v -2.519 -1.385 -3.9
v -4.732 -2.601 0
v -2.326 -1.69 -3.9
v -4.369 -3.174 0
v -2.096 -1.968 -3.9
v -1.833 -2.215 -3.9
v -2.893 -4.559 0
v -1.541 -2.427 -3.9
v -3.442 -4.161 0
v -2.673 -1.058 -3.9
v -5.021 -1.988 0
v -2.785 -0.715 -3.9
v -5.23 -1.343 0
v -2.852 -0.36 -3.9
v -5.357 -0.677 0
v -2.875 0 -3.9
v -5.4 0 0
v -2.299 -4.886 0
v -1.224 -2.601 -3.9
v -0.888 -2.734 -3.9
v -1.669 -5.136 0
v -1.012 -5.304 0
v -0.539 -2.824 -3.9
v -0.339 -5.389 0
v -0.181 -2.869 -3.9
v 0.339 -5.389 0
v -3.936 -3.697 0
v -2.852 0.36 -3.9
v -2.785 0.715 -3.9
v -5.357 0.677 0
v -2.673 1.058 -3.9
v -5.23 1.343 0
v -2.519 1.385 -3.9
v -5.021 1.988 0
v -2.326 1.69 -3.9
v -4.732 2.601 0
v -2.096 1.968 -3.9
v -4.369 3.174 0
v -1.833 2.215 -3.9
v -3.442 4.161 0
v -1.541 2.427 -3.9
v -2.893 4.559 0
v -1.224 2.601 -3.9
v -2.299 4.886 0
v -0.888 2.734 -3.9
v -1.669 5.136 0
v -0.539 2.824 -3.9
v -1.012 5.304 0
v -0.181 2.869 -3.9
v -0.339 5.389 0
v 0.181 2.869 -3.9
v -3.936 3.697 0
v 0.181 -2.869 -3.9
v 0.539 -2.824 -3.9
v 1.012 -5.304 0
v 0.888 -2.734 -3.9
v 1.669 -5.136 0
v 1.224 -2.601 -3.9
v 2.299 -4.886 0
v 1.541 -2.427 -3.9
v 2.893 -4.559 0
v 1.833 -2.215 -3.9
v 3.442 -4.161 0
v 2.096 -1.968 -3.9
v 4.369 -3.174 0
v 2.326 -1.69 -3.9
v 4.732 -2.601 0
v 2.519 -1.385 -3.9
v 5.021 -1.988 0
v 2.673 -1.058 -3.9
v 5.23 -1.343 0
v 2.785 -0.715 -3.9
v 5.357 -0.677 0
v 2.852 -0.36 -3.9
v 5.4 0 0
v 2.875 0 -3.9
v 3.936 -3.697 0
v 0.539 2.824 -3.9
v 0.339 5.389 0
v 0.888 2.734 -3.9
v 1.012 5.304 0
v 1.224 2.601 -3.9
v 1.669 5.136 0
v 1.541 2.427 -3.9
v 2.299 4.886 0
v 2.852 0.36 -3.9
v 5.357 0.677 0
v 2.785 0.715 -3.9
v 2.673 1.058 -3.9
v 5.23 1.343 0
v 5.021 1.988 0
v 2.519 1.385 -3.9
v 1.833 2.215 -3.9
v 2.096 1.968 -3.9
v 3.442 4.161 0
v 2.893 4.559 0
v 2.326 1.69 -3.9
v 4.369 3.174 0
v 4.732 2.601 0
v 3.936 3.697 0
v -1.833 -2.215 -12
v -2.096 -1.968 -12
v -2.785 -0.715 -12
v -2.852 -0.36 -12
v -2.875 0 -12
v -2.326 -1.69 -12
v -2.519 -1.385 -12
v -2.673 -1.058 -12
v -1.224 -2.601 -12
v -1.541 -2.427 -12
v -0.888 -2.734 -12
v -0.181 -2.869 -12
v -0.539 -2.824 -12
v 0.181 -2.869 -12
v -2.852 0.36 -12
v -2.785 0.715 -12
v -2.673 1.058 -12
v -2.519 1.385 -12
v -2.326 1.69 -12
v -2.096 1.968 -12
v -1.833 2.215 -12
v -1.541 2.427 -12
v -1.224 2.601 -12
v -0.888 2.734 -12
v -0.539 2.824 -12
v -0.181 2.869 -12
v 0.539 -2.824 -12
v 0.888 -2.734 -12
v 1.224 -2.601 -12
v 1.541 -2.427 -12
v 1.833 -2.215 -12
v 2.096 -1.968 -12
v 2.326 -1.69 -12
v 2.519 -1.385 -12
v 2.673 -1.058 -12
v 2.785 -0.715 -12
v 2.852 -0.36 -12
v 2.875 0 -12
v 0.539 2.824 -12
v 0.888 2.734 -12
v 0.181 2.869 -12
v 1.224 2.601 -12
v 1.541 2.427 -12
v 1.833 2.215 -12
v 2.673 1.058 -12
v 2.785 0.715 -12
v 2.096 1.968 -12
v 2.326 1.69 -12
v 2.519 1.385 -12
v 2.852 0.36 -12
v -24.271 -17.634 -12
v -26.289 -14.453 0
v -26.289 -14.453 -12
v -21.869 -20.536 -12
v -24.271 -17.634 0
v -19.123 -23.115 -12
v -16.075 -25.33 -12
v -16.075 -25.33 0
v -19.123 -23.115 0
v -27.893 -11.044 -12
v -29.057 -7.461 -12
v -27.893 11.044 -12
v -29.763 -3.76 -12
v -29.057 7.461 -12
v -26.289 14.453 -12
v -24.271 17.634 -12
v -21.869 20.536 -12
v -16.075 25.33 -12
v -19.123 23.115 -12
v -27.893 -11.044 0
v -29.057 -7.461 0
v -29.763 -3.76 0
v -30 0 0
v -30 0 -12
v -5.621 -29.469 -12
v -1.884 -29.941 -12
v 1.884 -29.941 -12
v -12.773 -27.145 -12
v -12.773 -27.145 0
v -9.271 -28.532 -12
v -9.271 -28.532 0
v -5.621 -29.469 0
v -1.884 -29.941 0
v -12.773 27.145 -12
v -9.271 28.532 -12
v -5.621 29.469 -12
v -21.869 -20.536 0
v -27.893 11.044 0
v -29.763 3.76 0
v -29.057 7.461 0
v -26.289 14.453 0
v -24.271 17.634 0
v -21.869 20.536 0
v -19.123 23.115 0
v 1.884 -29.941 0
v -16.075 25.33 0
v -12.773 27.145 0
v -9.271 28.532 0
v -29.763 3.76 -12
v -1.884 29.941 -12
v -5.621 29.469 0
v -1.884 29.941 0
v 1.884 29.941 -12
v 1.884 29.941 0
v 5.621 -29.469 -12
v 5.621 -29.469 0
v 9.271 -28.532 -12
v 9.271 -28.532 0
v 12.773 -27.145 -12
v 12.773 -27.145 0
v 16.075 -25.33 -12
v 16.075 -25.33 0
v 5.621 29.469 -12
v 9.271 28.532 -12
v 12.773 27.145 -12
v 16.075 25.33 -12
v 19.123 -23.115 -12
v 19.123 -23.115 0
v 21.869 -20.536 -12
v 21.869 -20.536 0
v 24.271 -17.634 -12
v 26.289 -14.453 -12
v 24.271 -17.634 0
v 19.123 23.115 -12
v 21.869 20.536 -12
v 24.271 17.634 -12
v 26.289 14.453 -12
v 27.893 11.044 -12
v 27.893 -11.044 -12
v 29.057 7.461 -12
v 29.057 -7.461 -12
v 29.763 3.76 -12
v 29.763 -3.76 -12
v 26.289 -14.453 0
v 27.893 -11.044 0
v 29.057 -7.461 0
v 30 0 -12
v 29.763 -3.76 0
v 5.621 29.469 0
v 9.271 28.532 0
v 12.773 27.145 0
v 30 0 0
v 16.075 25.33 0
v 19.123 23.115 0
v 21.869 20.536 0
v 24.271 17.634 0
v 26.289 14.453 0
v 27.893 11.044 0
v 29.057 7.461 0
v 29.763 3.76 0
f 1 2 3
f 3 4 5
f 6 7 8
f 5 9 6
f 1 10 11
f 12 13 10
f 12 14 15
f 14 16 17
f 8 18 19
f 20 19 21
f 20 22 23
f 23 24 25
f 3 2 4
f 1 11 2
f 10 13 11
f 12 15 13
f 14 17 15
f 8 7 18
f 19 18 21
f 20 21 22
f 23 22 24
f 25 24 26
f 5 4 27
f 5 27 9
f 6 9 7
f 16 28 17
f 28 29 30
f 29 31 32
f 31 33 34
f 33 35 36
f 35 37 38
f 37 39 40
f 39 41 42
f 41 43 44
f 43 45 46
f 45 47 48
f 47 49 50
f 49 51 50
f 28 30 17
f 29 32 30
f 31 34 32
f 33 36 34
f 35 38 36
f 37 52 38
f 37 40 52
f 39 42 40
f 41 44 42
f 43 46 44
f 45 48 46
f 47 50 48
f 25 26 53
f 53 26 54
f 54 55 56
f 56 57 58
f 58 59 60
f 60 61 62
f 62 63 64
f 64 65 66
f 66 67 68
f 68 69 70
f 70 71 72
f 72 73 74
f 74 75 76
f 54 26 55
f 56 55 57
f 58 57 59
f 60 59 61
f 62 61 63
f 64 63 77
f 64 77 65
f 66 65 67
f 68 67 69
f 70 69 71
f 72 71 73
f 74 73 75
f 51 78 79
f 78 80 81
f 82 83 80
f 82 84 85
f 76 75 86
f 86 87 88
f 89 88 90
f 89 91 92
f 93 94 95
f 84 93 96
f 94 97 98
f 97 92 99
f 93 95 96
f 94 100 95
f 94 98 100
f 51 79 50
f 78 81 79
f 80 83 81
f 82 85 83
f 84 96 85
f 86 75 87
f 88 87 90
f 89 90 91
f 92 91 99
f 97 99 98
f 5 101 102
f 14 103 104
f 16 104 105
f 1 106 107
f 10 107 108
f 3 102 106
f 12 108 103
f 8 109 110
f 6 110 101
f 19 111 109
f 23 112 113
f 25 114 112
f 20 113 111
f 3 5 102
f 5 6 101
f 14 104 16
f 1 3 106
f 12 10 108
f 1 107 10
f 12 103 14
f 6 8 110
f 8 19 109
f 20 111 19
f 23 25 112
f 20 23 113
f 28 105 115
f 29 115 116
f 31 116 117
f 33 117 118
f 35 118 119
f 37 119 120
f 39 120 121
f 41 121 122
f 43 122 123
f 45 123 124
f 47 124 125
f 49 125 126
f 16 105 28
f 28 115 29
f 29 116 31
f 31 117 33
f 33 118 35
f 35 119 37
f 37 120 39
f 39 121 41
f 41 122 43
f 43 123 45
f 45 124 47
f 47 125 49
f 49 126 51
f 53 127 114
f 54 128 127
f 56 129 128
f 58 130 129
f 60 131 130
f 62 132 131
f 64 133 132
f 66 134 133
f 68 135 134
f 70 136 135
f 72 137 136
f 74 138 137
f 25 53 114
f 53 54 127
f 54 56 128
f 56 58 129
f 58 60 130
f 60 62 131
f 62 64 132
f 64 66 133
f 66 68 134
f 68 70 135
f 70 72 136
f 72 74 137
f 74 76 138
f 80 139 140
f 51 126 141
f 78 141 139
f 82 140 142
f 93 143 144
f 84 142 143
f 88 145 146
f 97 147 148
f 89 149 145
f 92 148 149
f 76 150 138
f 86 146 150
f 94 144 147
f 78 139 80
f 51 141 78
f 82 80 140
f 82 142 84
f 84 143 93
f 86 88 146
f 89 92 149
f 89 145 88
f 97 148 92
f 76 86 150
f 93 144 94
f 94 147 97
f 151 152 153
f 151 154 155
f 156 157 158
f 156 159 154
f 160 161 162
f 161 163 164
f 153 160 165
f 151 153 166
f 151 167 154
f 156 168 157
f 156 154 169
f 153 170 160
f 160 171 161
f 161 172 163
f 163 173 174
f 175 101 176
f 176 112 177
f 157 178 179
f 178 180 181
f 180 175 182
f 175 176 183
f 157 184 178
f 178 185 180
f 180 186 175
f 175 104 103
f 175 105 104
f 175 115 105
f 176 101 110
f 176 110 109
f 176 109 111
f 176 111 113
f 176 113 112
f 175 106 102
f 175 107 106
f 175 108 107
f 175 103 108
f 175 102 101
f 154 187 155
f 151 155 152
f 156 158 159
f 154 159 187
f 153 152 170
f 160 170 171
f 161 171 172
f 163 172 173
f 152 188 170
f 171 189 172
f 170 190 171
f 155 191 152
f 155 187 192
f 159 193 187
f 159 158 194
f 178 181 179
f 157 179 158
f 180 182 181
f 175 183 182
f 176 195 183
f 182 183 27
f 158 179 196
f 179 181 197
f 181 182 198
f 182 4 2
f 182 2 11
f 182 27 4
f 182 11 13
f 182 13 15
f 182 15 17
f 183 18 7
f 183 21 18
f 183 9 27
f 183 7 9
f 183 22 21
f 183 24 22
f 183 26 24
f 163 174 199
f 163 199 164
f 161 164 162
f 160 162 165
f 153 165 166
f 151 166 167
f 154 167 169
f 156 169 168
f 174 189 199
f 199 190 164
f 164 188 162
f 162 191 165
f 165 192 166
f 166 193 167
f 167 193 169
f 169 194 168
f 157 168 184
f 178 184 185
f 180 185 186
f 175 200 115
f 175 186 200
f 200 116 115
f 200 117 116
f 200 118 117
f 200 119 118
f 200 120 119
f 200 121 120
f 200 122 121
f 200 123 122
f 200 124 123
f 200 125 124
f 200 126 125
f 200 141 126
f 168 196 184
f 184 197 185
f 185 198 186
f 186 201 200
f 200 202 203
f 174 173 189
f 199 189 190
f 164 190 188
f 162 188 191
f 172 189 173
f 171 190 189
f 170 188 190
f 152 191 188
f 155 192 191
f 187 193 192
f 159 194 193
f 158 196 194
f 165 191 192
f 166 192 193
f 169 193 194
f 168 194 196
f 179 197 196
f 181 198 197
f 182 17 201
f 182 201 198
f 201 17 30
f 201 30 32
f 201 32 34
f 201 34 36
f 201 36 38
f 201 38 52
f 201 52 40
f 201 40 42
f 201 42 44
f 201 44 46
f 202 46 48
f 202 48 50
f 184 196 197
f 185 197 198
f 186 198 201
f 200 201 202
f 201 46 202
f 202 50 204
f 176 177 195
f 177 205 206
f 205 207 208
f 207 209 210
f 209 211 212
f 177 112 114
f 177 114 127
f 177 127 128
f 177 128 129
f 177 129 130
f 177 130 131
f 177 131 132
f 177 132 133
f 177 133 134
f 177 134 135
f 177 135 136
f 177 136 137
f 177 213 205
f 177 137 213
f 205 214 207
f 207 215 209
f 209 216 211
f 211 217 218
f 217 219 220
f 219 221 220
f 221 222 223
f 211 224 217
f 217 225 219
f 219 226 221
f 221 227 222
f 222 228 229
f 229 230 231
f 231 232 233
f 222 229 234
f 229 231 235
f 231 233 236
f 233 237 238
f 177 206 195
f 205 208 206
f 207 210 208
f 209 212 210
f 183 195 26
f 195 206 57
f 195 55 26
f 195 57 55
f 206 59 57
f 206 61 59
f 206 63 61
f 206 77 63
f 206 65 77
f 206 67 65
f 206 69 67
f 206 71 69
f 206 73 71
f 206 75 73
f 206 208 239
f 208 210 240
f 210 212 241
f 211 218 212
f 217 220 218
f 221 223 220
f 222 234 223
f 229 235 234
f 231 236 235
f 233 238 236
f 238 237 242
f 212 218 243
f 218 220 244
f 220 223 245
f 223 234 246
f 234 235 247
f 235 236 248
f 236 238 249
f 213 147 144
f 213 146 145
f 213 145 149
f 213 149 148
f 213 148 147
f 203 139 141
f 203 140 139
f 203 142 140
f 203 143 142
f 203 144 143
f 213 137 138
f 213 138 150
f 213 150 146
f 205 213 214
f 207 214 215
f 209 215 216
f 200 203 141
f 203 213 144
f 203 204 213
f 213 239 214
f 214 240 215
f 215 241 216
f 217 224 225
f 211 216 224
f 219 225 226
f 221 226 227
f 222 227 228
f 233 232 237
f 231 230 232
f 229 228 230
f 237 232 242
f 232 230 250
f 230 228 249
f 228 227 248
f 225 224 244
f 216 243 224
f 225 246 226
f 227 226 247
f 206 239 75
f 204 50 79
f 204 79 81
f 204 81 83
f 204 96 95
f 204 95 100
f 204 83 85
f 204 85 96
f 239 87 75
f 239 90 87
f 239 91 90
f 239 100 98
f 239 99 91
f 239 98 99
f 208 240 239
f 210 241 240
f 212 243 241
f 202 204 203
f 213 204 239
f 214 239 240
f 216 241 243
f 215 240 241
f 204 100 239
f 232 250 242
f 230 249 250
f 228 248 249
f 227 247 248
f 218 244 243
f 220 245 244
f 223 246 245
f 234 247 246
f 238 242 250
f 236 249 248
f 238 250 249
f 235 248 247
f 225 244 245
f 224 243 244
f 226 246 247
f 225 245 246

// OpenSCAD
$fn = 50;

difference() {
	union() {
		translate(v = [0, 0, -12.0]) {
			cylinder(h = 12, r = 30.0);
		}
	}
	union() {
		translate(v = [0, 0, 0]) {
			rotate(a = [0, 0, 0]) {
				difference() {
					union() {
						translate(v = [0, 0, -15.0]) {
							cylinder(h = 15, r = 2.6);
						}
						translate(v = [0, 0, -3.9]) {
							cylinder(h = 3.9, r1 = 2.875, r2 = 5.4);
						}
						translate(v = [0, 0, -15.0]) {
							cylinder(h = 15, r = 2.875);
						}
						translate(v = [0, 0, -15.0]) {
							cylinder(h = 15, r = 2.6);
						}
					}
					union();
				}
			}
		}
	}
}
